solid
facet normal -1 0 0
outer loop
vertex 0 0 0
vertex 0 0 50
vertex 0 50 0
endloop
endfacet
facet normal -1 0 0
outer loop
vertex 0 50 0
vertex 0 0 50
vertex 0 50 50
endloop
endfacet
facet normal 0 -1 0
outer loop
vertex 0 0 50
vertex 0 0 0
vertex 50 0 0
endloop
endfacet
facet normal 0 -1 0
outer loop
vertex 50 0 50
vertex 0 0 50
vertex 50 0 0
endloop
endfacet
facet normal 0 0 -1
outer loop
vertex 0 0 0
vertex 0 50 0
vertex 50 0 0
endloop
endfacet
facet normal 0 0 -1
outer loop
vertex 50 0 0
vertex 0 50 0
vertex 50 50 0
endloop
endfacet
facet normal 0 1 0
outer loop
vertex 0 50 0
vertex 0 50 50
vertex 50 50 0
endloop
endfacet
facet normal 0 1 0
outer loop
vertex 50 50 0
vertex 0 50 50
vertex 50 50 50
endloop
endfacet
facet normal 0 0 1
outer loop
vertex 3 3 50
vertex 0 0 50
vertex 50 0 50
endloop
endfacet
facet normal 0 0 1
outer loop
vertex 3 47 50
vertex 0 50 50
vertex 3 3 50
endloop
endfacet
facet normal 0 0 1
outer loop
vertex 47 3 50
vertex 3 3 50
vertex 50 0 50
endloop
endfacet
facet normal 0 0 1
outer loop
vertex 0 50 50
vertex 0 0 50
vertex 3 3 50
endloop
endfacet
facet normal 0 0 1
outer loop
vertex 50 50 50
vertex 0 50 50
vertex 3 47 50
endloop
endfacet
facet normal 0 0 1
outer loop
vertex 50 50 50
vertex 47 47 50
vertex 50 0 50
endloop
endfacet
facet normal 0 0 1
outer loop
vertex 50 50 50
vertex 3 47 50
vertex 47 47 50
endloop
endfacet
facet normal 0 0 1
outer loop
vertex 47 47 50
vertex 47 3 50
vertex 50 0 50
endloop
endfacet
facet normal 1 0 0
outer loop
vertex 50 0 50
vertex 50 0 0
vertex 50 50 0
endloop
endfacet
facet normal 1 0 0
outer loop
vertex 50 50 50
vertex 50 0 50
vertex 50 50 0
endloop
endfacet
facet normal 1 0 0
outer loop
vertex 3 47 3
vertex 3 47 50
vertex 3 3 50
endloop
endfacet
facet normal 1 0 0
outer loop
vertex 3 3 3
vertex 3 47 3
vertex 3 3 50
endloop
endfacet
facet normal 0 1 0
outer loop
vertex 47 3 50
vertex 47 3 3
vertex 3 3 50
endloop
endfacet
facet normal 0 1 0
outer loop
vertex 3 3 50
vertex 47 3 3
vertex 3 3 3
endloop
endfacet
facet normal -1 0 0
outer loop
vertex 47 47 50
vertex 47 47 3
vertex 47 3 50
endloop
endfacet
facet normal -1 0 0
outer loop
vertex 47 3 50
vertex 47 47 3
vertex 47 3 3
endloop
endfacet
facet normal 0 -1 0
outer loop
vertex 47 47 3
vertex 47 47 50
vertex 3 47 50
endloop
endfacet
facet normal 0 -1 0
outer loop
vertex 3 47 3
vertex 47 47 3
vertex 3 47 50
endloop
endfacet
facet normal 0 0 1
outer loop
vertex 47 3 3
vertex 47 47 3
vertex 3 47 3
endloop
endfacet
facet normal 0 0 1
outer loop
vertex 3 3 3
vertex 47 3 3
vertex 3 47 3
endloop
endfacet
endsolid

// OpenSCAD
difference(){
      cube([50,50,50]);
      translate([3,3,3]){cube([44,44,50]);}
}
